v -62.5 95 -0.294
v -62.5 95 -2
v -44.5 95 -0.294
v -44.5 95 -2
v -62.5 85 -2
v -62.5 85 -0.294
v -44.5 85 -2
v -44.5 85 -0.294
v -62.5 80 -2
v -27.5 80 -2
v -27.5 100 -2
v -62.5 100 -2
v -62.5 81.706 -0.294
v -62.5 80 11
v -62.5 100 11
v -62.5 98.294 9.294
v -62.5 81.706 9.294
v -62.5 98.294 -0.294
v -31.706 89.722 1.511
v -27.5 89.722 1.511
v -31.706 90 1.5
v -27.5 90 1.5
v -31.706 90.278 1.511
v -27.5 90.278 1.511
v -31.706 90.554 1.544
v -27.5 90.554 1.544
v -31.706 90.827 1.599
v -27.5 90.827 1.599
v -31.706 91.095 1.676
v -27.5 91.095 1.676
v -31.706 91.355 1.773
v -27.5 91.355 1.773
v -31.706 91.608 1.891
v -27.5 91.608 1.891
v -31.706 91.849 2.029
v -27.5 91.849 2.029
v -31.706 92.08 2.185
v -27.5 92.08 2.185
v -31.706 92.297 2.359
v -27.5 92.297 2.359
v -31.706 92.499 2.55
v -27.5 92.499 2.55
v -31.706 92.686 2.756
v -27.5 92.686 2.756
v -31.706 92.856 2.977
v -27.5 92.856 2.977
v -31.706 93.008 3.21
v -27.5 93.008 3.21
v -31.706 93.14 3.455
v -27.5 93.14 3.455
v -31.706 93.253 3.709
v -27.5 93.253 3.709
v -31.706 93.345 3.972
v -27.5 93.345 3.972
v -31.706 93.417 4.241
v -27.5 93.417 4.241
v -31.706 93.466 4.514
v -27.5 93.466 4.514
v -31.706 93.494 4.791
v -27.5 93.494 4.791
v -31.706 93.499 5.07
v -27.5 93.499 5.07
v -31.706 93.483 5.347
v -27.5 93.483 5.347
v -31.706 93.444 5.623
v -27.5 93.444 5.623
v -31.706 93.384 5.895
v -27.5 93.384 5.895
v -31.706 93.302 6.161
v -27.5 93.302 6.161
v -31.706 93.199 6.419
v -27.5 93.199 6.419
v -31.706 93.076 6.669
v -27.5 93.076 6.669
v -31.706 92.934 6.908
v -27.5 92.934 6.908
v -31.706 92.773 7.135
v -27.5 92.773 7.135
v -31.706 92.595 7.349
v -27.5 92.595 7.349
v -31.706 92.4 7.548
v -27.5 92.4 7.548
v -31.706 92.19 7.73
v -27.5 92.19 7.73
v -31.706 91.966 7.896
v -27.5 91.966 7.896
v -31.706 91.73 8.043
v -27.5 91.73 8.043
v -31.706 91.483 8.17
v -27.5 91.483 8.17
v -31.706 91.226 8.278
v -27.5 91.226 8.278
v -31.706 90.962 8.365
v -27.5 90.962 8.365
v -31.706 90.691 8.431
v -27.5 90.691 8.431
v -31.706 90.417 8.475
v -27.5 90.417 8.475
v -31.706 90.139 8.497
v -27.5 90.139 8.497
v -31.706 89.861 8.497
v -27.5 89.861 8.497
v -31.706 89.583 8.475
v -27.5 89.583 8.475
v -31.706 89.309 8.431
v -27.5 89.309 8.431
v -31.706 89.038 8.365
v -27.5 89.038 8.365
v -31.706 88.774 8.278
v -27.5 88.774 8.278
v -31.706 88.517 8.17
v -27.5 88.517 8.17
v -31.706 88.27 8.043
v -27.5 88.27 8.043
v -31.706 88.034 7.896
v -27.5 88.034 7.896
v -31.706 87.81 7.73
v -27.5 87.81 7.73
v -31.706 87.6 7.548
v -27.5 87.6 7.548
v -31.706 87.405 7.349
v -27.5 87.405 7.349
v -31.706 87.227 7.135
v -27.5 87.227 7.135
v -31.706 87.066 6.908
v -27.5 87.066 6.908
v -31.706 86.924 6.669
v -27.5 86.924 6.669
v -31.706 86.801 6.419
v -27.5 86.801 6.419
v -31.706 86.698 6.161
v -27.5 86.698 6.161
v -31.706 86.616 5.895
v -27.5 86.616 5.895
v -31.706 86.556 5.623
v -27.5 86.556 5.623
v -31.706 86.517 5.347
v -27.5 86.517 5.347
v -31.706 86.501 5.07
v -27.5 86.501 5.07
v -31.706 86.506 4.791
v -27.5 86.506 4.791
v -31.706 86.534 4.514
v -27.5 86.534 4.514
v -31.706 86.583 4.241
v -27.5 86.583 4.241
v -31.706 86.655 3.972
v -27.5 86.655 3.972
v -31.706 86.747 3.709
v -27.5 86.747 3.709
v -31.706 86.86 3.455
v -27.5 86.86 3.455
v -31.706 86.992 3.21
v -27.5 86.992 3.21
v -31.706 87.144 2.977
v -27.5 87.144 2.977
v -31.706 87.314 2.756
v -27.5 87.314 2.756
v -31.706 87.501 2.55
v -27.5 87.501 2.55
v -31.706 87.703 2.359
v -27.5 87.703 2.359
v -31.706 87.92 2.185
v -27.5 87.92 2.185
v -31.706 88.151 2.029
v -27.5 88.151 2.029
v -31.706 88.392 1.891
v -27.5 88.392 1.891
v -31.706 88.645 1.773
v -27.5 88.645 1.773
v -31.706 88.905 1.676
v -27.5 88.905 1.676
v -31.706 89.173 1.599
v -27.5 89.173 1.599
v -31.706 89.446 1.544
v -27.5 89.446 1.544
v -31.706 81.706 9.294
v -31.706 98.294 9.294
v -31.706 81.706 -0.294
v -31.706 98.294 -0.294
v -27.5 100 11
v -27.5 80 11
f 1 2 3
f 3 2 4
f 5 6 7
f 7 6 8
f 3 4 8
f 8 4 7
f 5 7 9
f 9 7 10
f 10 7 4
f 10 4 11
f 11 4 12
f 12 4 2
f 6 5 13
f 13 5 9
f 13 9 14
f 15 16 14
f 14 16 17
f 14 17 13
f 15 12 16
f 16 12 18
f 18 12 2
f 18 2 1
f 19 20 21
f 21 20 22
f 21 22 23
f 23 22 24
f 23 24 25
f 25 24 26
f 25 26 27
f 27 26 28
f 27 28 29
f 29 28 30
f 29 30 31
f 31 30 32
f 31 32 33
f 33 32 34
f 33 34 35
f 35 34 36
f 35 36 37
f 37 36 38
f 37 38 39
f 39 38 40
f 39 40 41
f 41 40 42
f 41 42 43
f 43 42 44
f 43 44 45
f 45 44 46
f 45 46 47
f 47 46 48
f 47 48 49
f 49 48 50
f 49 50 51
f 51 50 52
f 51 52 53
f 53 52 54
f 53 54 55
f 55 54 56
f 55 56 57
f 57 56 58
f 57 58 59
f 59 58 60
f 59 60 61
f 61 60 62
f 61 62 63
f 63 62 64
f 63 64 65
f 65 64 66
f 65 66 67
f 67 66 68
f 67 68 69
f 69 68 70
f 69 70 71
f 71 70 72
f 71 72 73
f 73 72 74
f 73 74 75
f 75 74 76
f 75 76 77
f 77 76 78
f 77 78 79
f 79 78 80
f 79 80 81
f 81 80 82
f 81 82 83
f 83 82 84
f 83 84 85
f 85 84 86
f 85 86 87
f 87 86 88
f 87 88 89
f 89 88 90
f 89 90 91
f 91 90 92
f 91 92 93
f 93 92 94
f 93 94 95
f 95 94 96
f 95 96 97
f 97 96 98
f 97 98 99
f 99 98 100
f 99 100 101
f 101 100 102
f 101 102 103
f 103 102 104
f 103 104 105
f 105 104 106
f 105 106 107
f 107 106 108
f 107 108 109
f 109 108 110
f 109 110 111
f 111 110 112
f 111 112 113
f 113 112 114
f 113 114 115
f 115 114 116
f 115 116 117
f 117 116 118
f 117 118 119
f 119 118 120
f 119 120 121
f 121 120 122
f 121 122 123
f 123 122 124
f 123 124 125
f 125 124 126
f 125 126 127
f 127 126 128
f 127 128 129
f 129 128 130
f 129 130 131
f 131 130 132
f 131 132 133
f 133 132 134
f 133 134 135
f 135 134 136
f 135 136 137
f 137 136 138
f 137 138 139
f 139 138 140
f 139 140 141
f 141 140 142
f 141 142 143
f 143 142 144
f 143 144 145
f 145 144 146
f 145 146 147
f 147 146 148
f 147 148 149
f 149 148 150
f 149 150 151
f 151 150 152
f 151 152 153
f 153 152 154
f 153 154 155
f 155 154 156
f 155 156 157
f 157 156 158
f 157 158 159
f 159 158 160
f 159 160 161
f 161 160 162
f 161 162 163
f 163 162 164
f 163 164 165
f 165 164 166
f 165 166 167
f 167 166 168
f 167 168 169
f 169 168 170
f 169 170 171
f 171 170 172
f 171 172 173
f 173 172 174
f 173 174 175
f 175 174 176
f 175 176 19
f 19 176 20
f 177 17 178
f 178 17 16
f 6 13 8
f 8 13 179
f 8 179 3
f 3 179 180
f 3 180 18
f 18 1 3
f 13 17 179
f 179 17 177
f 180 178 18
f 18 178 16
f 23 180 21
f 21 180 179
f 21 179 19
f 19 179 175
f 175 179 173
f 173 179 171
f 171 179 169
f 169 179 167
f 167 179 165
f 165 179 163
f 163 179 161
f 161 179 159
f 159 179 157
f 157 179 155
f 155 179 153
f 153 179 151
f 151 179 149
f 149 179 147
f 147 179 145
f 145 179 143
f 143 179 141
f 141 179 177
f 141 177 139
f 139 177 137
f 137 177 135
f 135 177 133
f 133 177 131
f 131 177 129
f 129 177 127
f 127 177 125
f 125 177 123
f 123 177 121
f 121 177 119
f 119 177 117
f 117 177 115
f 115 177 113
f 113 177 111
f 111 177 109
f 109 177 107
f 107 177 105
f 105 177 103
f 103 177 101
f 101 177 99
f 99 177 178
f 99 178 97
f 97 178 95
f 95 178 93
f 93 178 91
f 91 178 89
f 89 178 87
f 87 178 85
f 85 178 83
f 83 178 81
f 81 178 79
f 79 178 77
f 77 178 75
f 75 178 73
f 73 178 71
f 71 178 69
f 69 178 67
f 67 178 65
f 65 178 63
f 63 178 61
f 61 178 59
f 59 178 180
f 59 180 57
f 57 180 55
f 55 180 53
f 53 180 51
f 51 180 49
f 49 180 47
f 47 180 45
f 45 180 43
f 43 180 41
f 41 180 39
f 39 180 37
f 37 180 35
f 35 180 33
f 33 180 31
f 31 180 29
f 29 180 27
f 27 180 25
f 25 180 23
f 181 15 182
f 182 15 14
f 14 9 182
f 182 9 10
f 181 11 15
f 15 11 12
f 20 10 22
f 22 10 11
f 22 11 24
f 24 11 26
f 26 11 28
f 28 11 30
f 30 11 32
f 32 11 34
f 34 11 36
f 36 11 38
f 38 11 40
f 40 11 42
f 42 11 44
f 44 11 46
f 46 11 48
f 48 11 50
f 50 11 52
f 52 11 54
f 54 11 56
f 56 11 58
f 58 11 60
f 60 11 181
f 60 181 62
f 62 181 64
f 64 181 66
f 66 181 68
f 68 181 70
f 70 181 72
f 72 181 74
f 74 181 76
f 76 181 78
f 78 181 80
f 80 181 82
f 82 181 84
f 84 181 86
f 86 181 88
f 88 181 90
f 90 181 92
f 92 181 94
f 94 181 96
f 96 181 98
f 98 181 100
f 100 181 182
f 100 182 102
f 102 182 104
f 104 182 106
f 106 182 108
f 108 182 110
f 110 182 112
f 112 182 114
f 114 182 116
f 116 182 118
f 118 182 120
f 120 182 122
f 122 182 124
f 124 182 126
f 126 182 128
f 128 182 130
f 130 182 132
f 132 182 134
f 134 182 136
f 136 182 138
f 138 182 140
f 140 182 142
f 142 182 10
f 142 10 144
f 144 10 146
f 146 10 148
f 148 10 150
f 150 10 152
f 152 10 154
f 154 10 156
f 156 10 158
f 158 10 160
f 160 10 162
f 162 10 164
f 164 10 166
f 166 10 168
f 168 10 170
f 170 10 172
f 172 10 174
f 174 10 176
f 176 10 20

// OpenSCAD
module object1(scale) {polyhedron(
 points=[[-62.5,95,-0.29408740997314453],[-62.5,95,-2],[-44.5,95,-0.29408740997314453],[-44.5,95,-0.29408740997314453],[-62.5,95,-2],[-44.5,95,-2],[-62.5,85,-2],[-62.5,85,-0.29408740997314453],[-44.5,85,-2],[-44.5,85,-2],[-62.5,85,-0.29408740997314453],[-44.5,85,-0.29408740997314453],[-44.5,95,-0.29408740997314453],[-44.5,95,-2],[-44.5,85,-0.29408740997314453],[-44.5,85,-0.29408740997314453],[-44.5,95,-2],[-44.5,85,-2],[-62.5,85,-2],[-44.5,85,-2],[-62.5,80,-2],[-62.5,80,-2],[-44.5,85,-2],[-27.5,80,-2],[-27.5,80,-2],[-44.5,85,-2],[-44.5,95,-2],[-27.5,80,-2],[-44.5,95,-2],[-27.5,100,-2],[-27.5,100,-2],[-44.5,95,-2],[-62.5,100,-2],[-62.5,100,-2],[-44.5,95,-2],[-62.5,95,-2],[-62.5,85,-0.29408740997314453],[-62.5,85,-2],[-62.5,81.7059097290039,-0.29408740997314453],[-62.5,81.7059097290039,-0.29408740997314453],[-62.5,85,-2],[-62.5,80,-2],[-62.5,81.7059097290039,-0.29408740997314453],[-62.5,80,-2],[-62.5,80,11],[-62.5,100,11],[-62.5,98.2940902709961,9.294087409973145],[-62.5,80,11],[-62.5,80,11],[-62.5,98.2940902709961,9.294087409973145],[-62.5,81.7059097290039,9.294087409973145],[-62.5,80,11],[-62.5,81.7059097290039,9.294087409973145],[-62.5,81.7059097290039,-0.29408740997314453],[-62.5,100,11],[-62.5,100,-2],[-62.5,98.2940902709961,9.294087409973145],[-62.5,98.2940902709961,9.294087409973145],[-62.5,100,-2],[-62.5,98.2940902709961,-0.29408740997314453],[-62.5,98.2940902709961,-0.29408740997314453],[-62.5,100,-2],[-62.5,95,-2],[-62.5,98.2940902709961,-0.29408740997314453],[-62.5,95,-2],[-62.5,95,-0.29408740997314453],[-31.705913543701172,89.721923828125,1.511064052581787],[-27.5,89.721923828125,1.511064052581787],[-31.705913543701172,90,1.5],[-31.705913543701172,90,1.5],[-27.5,89.721923828125,1.511064052581787],[-27.5,90,1.5],[-31.705913543701172,90,1.5],[-27.5,90,1.5],[-31.705913543701172,90.278076171875,1.511064052581787],[-31.705913543701172,90.278076171875,1.511064052581787],[-27.5,90,1.5],[-27.5,90.278076171875,1.511064052581787],[-31.705913543701172,90.278076171875,1.511064052581787],[-27.5,90.278076171875,1.511064052581787],[-31.705913543701172,90.55438995361328,1.5441863536834717],[-31.705913543701172,90.55438995361328,1.5441863536834717],[-27.5,90.278076171875,1.511064052581787],[-27.5,90.55438995361328,1.5441863536834717],[-31.705913543701172,90.55438995361328,1.5441863536834717],[-27.5,90.55438995361328,1.5441863536834717],[-31.705913543701172,90.82720184326172,1.5991573333740234],[-31.705913543701172,90.82720184326172,1.5991573333740234],[-27.5,90.55438995361328,1.5441863536834717],[-27.5,90.82720184326172,1.5991573333740234],[-31.705913543701172,90.82720184326172,1.5991573333740234],[-27.5,90.82720184326172,1.5991573333740234],[-31.705913543701172,91.09478759765625,1.6756294965744019],[-31.705913543701172,91.09478759765625,1.6756294965744019],[-27.5,90.82720184326172,1.5991573333740234],[-27.5,91.09478759765625,1.6756294965744019],[-31.705913543701172,91.09478759765625,1.6756294965744019],[-27.5,91.09478759765625,1.6756294965744019],[-31.705913543701172,91.3554458618164,1.7731194496154785],[-31.705913543701172,91.3554458618164,1.7731194496154785],[-27.5,91.09478759765625,1.6756294965744019],[-27.5,91.3554458618164,1.7731194496154785],[-31.705913543701172,91.3554458618164,1.7731194496154785],[-27.5,91.3554458618164,1.7731194496154785],[-31.705913543701172,91.6075439453125,1.8910108804702759],[-31.705913543701172,91.6075439453125,1.8910108804702759],[-27.5,91.3554458618164,1.7731194496154785],[-27.5,91.6075439453125,1.8910108804702759],[-31.705913543701172,91.6075439453125,1.8910108804702759],[-27.5,91.6075439453125,1.8910108804702759],[-31.705913543701172,91.84947204589844,2.0285582542419434],[-31.705913543701172,91.84947204589844,2.0285582542419434],[-27.5,91.6075439453125,1.8910108804702759],[-27.5,91.84947204589844,2.0285582542419434],[-31.705913543701172,91.84947204589844,2.0285582542419434],[-27.5,91.84947204589844,2.0285582542419434],[-31.705913543701172,92.07970428466797,2.184891939163208],[-31.705913543701172,92.07970428466797,2.184891939163208],[-27.5,91.84947204589844,2.0285582542419434],[-27.5,92.07970428466797,2.184891939163208],[-31.705913543701172,92.07970428466797,2.184891939163208],[-27.5,92.07970428466797,2.184891939163208],[-31.705913543701172,92.29679107666016,2.3590238094329834],[-31.705913543701172,92.29679107666016,2.3590238094329834],[-27.5,92.07970428466797,2.184891939163208],[-27.5,92.29679107666016,2.3590238094329834],[-31.705913543701172,92.29679107666016,2.3590238094329834],[-27.5,92.29679107666016,2.3590238094329834],[-31.705913543701172,92.49935913085938,2.5498528480529785],[-31.705913543701172,92.49935913085938,2.5498528480529785],[-27.5,92.29679107666016,2.3590238094329834],[-27.5,92.49935913085938,2.5498528480529785],[-31.705913543701172,92.49935913085938,2.5498528480529785],[-27.5,92.49935913085938,2.5498528480529785],[-31.705913543701172,92.68611907958984,2.7561721801757812],[-31.705913543701172,92.68611907958984,2.7561721801757812],[-27.5,92.49935913085938,2.5498528480529785],[-27.5,92.68611907958984,2.7561721801757812],[-31.705913543701172,92.68611907958984,2.7561721801757812],[-27.5,92.68611907958984,2.7561721801757812],[-31.705913543701172,92.85590362548828,2.976677894592285],[-31.705913543701172,92.85590362548828,2.976677894592285],[-27.5,92.68611907958984,2.7561721801757812],[-27.5,92.85590362548828,2.976677894592285],[-31.705913543701172,92.85590362548828,2.976677894592285],[-27.5,92.85590362548828,2.976677894592285],[-31.705913543701172,93.00762939453125,3.2099757194519043],[-31.705913543701172,93.00762939453125,3.2099757194519043],[-27.5,92.85590362548828,2.976677894592285],[-27.5,93.00762939453125,3.2099757194519043],[-31.705913543701172,93.00762939453125,3.2099757194519043],[-27.5,93.00762939453125,3.2099757194519043],[-31.705913543701172,93.14033508300781,3.4545907974243164],[-31.705913543701172,93.14033508300781,3.4545907974243164],[-27.5,93.00762939453125,3.2099757194519043],[-27.5,93.14033508300781,3.4545907974243164],[-31.705913543701172,93.14033508300781,3.4545907974243164],[-27.5,93.14033508300781,3.4545907974243164],[-31.705913543701172,93.25318908691406,3.7089762687683105],[-31.705913543701172,93.25318908691406,3.7089762687683105],[-27.5,93.14033508300781,3.4545907974243164],[-27.5,93.25318908691406,3.7089762687683105],[-31.705913543701172,93.25318908691406,3.7089762687683105],[-27.5,93.25318908691406,3.7089762687683105],[-31.705913543701172,93.3454818725586,3.9715240001678467],[-31.705913543701172,93.3454818725586,3.9715240001678467],[-27.5,93.25318908691406,3.7089762687683105],[-27.5,93.3454818725586,3.9715240001678467],[-31.705913543701172,93.3454818725586,3.9715240001678467],[-27.5,93.3454818725586,3.9715240001678467],[-31.705913543701172,93.41661834716797,4.240574359893799],[-31.705913543701172,93.41661834716797,4.240574359893799],[-27.5,93.3454818725586,3.9715240001678467],[-27.5,93.41661834716797,4.240574359893799],[-31.705913543701172,93.41661834716797,4.240574359893799],[-27.5,93.41661834716797,4.240574359893799],[-31.705913543701172,93.46615600585938,4.514425754547119],[-31.705913543701172,93.46615600585938,4.514425754547119],[-27.5,93.41661834716797,4.240574359893799],[-27.5,93.46615600585938,4.514425754547119],[-31.705913543701172,93.46615600585938,4.514425754547119],[-27.5,93.46615600585938,4.514425754547119],[-31.705913543701172,93.4937744140625,4.791347026824951],[-31.705913543701172,93.4937744140625,4.791347026824951],[-27.5,93.46615600585938,4.514425754547119],[-27.5,93.4937744140625,4.791347026824951],[-31.705913543701172,93.4937744140625,4.791347026824951],[-27.5,93.4937744140625,4.791347026824951],[-31.705913543701172,93.49930572509766,5.069587707519531],[-31.705913543701172,93.49930572509766,5.069587707519531],[-27.5,93.4937744140625,4.791347026824951],[-27.5,93.49930572509766,5.069587707519531],[-31.705913543701172,93.49930572509766,5.069587707519531],[-27.5,93.49930572509766,5.069587707519531],[-31.705913543701172,93.48271942138672,5.34738826751709],[-31.705913543701172,93.48271942138672,5.34738826751709],[-27.5,93.49930572509766,5.069587707519531],[-27.5,93.48271942138672,5.34738826751709],[-31.705913543701172,93.48271942138672,5.34738826751709],[-27.5,93.48271942138672,5.34738826751709],[-31.705913543701172,93.44410705566406,5.622992515563965],[-31.705913543701172,93.44410705566406,5.622992515563965],[-27.5,93.48271942138672,5.34738826751709],[-27.5,93.44410705566406,5.622992515563965],[-31.705913543701172,93.44410705566406,5.622992515563965],[-27.5,93.44410705566406,5.622992515563965],[-31.705913543701172,93.38372039794922,5.894658088684082],[-31.705913543701172,93.38372039794922,5.894658088684082],[-27.5,93.44410705566406,5.622992515563965],[-27.5,93.38372039794922,5.894658088684082],[-31.705913543701172,93.38372039794922,5.894658088684082],[-27.5,93.38372039794922,5.894658088684082],[-31.705913543701172,93.30194854736328,6.160667419433594],[-31.705913543701172,93.30194854736328,6.160667419433594],[-27.5,93.38372039794922,5.894658088684082],[-27.5,93.30194854736328,6.160667419433594],[-31.705913543701172,93.30194854736328,6.160667419433594],[-27.5,93.30194854736328,6.160667419433594],[-31.705913543701172,93.19929504394531,6.419338703155518],[-31.705913543701172,93.19929504394531,6.419338703155518],[-27.5,93.30194854736328,6.160667419433594],[-27.5,93.19929504394531,6.419338703155518],[-31.705913543701172,93.19929504394531,6.419338703155518],[-27.5,93.19929504394531,6.419338703155518],[-31.705913543701172,93.076416015625,6.669036388397217],[-31.705913543701172,93.076416015625,6.669036388397217],[-27.5,93.19929504394531,6.419338703155518],[-27.5,93.076416015625,6.669036388397217],[-31.705913543701172,93.076416015625,6.669036388397217],[-27.5,93.076416015625,6.669036388397217],[-31.705913543701172,92.93408203125,6.908181667327881],[-31.705913543701172,92.93408203125,6.908181667327881],[-27.5,93.076416015625,6.669036388397217],[-27.5,92.93408203125,6.908181667327881],[-31.705913543701172,92.93408203125,6.908181667327881],[-27.5,92.93408203125,6.908181667327881],[-31.705913543701172,92.77320098876953,7.135262966156006],[-31.705913543701172,92.77320098876953,7.135262966156006],[-27.5,92.93408203125,6.908181667327881],[-27.5,92.77320098876953,7.135262966156006],[-31.705913543701172,92.77320098876953,7.135262966156006],[-27.5,92.77320098876953,7.135262966156006],[-31.705913543701172,92.59478759765625,7.348844528198242],[-31.705913543701172,92.59478759765625,7.348844528198242],[-27.5,92.77320098876953,7.135262966156006],[-27.5,92.59478759765625,7.348844528198242],[-31.705913543701172,92.59478759765625,7.348844528198242],[-27.5,92.59478759765625,7.348844528198242],[-31.705913543701172,92.39997100830078,7.547575950622559],[-31.705913543701172,92.39997100830078,7.547575950622559],[-27.5,92.59478759765625,7.348844528198242],[-27.5,92.39997100830078,7.547575950622559],[-31.705913543701172,92.39997100830078,7.547575950622559],[-27.5,92.39997100830078,7.547575950622559],[-31.705913543701172,92.18997955322266,7.73020076751709],[-31.705913543701172,92.18997955322266,7.73020076751709],[-27.5,92.39997100830078,7.547575950622559],[-27.5,92.18997955322266,7.73020076751709],[-31.705913543701172,92.18997955322266,7.73020076751709],[-27.5,92.18997955322266,7.73020076751709],[-31.705913543701172,91.96614074707031,7.895564079284668],[-31.705913543701172,91.96614074707031,7.895564079284668],[-27.5,92.18997955322266,7.73020076751709],[-27.5,91.96614074707031,7.895564079284668],[-31.705913543701172,91.96614074707031,7.895564079284668],[-27.5,91.96614074707031,7.895564079284668],[-31.705913543701172,91.72987365722656,8.042620658874512],[-31.705913543701172,91.72987365722656,8.042620658874512],[-27.5,91.96614074707031,7.895564079284668],[-27.5,91.72987365722656,8.042620658874512],[-31.705913543701172,91.72987365722656,8.042620658874512],[-27.5,91.72987365722656,8.042620658874512],[-31.705913543701172,91.482666015625,8.170441627502441],[-31.705913543701172,91.482666015625,8.170441627502441],[-27.5,91.72987365722656,8.042620658874512],[-27.5,91.482666015625,8.170441627502441],[-31.705913543701172,91.482666015625,8.170441627502441],[-27.5,91.482666015625,8.170441627502441],[-31.705913543701172,91.22608947753906,8.278217315673828],[-31.705913543701172,91.22608947753906,8.278217315673828],[-27.5,91.482666015625,8.170441627502441],[-27.5,91.22608947753906,8.278217315673828],[-31.705913543701172,91.22608947753906,8.278217315673828],[-27.5,91.22608947753906,8.278217315673828],[-31.705913543701172,90.96175384521484,8.365266799926758],[-31.705913543701172,90.96175384521484,8.365266799926758],[-27.5,91.22608947753906,8.278217315673828],[-27.5,90.96175384521484,8.365266799926758],[-31.705913543701172,90.96175384521484,8.365266799926758],[-27.5,90.96175384521484,8.365266799926758],[-31.705913543701172,90.69134521484375,8.43104076385498],[-31.705913543701172,90.69134521484375,8.43104076385498],[-27.5,90.96175384521484,8.365266799926758],[-27.5,90.69134521484375,8.43104076385498],[-31.705913543701172,90.69134521484375,8.43104076385498],[-27.5,90.69134521484375,8.43104076385498],[-31.705913543701172,90.41656494140625,8.475122451782227],[-31.705913543701172,90.41656494140625,8.475122451782227],[-27.5,90.69134521484375,8.43104076385498],[-27.5,90.41656494140625,8.475122451782227],[-31.705913543701172,90.41656494140625,8.475122451782227],[-27.5,90.41656494140625,8.475122451782227],[-31.705913543701172,90.13914489746094,8.497232437133789],[-31.705913543701172,90.13914489746094,8.497232437133789],[-27.5,90.41656494140625,8.475122451782227],[-27.5,90.13914489746094,8.497232437133789],[-31.705913543701172,90.13914489746094,8.497232437133789],[-27.5,90.13914489746094,8.497232437133789],[-31.705913543701172,89.86085510253906,8.497232437133789],[-31.705913543701172,89.86085510253906,8.497232437133789],[-27.5,90.13914489746094,8.497232437133789],[-27.5,89.86085510253906,8.497232437133789],[-31.705913543701172,89.86085510253906,8.497232437133789],[-27.5,89.86085510253906,8.497232437133789],[-31.705913543701172,89.58343505859375,8.475122451782227],[-31.705913543701172,89.58343505859375,8.475122451782227],[-27.5,89.86085510253906,8.497232437133789],[-27.5,89.58343505859375,8.475122451782227],[-31.705913543701172,89.58343505859375,8.475122451782227],[-27.5,89.58343505859375,8.475122451782227],[-31.705913543701172,89.30865478515625,8.43104076385498],[-31.705913543701172,89.30865478515625,8.43104076385498],[-27.5,89.58343505859375,8.475122451782227],[-27.5,89.30865478515625,8.43104076385498],[-31.705913543701172,89.30865478515625,8.43104076385498],[-27.5,89.30865478515625,8.43104076385498],[-31.705913543701172,89.03824615478516,8.365266799926758],[-31.705913543701172,89.03824615478516,8.365266799926758],[-27.5,89.30865478515625,8.43104076385498],[-27.5,89.03824615478516,8.365266799926758],[-31.705913543701172,89.03824615478516,8.365266799926758],[-27.5,89.03824615478516,8.365266799926758],[-31.705913543701172,88.77391052246094,8.278217315673828],[-31.705913543701172,88.77391052246094,8.278217315673828],[-27.5,89.03824615478516,8.365266799926758],[-27.5,88.77391052246094,8.278217315673828],[-31.705913543701172,88.77391052246094,8.278217315673828],[-27.5,88.77391052246094,8.278217315673828],[-31.705913543701172,88.517333984375,8.170441627502441],[-31.705913543701172,88.517333984375,8.170441627502441],[-27.5,88.77391052246094,8.278217315673828],[-27.5,88.517333984375,8.170441627502441],[-31.705913543701172,88.517333984375,8.170441627502441],[-27.5,88.517333984375,8.170441627502441],[-31.705913543701172,88.27012634277344,8.042620658874512],[-31.705913543701172,88.27012634277344,8.042620658874512],[-27.5,88.517333984375,8.170441627502441],[-27.5,88.27012634277344,8.042620658874512],[-31.705913543701172,88.27012634277344,8.042620658874512],[-27.5,88.27012634277344,8.042620658874512],[-31.705913543701172,88.03385925292969,7.895564079284668],[-31.705913543701172,88.03385925292969,7.895564079284668],[-27.5,88.27012634277344,8.042620658874512],[-27.5,88.03385925292969,7.895564079284668],[-31.705913543701172,88.03385925292969,7.895564079284668],[-27.5,88.03385925292969,7.895564079284668],[-31.705913543701172,87.81002044677734,7.73020076751709],[-31.705913543701172,87.81002044677734,7.73020076751709],[-27.5,88.03385925292969,7.895564079284668],[-27.5,87.81002044677734,7.73020076751709],[-31.705913543701172,87.81002044677734,7.73020076751709],[-27.5,87.81002044677734,7.73020076751709],[-31.705913543701172,87.60002899169922,7.547575950622559],[-31.705913543701172,87.60002899169922,7.547575950622559],[-27.5,87.81002044677734,7.73020076751709],[-27.5,87.60002899169922,7.547575950622559],[-31.705913543701172,87.60002899169922,7.547575950622559],[-27.5,87.60002899169922,7.547575950622559],[-31.705913543701172,87.40521240234375,7.348844528198242],[-31.705913543701172,87.40521240234375,7.348844528198242],[-27.5,87.60002899169922,7.547575950622559],[-27.5,87.40521240234375,7.348844528198242],[-31.705913543701172,87.40521240234375,7.348844528198242],[-27.5,87.40521240234375,7.348844528198242],[-31.705913543701172,87.22679901123047,7.135262966156006],[-31.705913543701172,87.22679901123047,7.135262966156006],[-27.5,87.40521240234375,7.348844528198242],[-27.5,87.22679901123047,7.135262966156006],[-31.705913543701172,87.22679901123047,7.135262966156006],[-27.5,87.22679901123047,7.135262966156006],[-31.705913543701172,87.06591796875,6.908181667327881],[-31.705913543701172,87.06591796875,6.908181667327881],[-27.5,87.22679901123047,7.135262966156006],[-27.5,87.06591796875,6.908181667327881],[-31.705913543701172,87.06591796875,6.908181667327881],[-27.5,87.06591796875,6.908181667327881],[-31.705913543701172,86.923583984375,6.669036388397217],[-31.705913543701172,86.923583984375,6.669036388397217],[-27.5,87.06591796875,6.908181667327881],[-27.5,86.923583984375,6.669036388397217],[-31.705913543701172,86.923583984375,6.669036388397217],[-27.5,86.923583984375,6.669036388397217],[-31.705913543701172,86.80070495605469,6.419338703155518],[-31.705913543701172,86.80070495605469,6.419338703155518],[-27.5,86.923583984375,6.669036388397217],[-27.5,86.80070495605469,6.419338703155518],[-31.705913543701172,86.80070495605469,6.419338703155518],[-27.5,86.80070495605469,6.419338703155518],[-31.705913543701172,86.69805145263672,6.160667419433594],[-31.705913543701172,86.69805145263672,6.160667419433594],[-27.5,86.80070495605469,6.419338703155518],[-27.5,86.69805145263672,6.160667419433594],[-31.705913543701172,86.69805145263672,6.160667419433594],[-27.5,86.69805145263672,6.160667419433594],[-31.705913543701172,86.61627960205078,5.894658088684082],[-31.705913543701172,86.61627960205078,5.894658088684082],[-27.5,86.69805145263672,6.160667419433594],[-27.5,86.61627960205078,5.894658088684082],[-31.705913543701172,86.61627960205078,5.894658088684082],[-27.5,86.61627960205078,5.894658088684082],[-31.705913543701172,86.55589294433594,5.622992515563965],[-31.705913543701172,86.55589294433594,5.622992515563965],[-27.5,86.61627960205078,5.894658088684082],[-27.5,86.55589294433594,5.622992515563965],[-31.705913543701172,86.55589294433594,5.622992515563965],[-27.5,86.55589294433594,5.622992515563965],[-31.705913543701172,86.51728057861328,5.34738826751709],[-31.705913543701172,86.51728057861328,5.34738826751709],[-27.5,86.55589294433594,5.622992515563965],[-27.5,86.51728057861328,5.34738826751709],[-31.705913543701172,86.51728057861328,5.34738826751709],[-27.5,86.51728057861328,5.34738826751709],[-31.705913543701172,86.50069427490234,5.069587707519531],[-31.705913543701172,86.50069427490234,5.069587707519531],[-27.5,86.51728057861328,5.34738826751709],[-27.5,86.50069427490234,5.069587707519531],[-31.705913543701172,86.50069427490234,5.069587707519531],[-27.5,86.50069427490234,5.069587707519531],[-31.705913543701172,86.5062255859375,4.791347026824951],[-31.705913543701172,86.5062255859375,4.791347026824951],[-27.5,86.50069427490234,5.069587707519531],[-27.5,86.5062255859375,4.791347026824951],[-31.705913543701172,86.5062255859375,4.791347026824951],[-27.5,86.5062255859375,4.791347026824951],[-31.705913543701172,86.53384399414062,4.514425754547119],[-31.705913543701172,86.53384399414062,4.514425754547119],[-27.5,86.5062255859375,4.791347026824951],[-27.5,86.53384399414062,4.514425754547119],[-31.705913543701172,86.53384399414062,4.514425754547119],[-27.5,86.53384399414062,4.514425754547119],[-31.705913543701172,86.58338165283203,4.240574359893799],[-31.705913543701172,86.58338165283203,4.240574359893799],[-27.5,86.53384399414062,4.514425754547119],[-27.5,86.58338165283203,4.240574359893799],[-31.705913543701172,86.58338165283203,4.240574359893799],[-27.5,86.58338165283203,4.240574359893799],[-31.705913543701172,86.6545181274414,3.9715240001678467],[-31.705913543701172,86.6545181274414,3.9715240001678467],[-27.5,86.58338165283203,4.240574359893799],[-27.5,86.6545181274414,3.9715240001678467],[-31.705913543701172,86.6545181274414,3.9715240001678467],[-27.5,86.6545181274414,3.9715240001678467],[-31.705913543701172,86.74681091308594,3.7089762687683105],[-31.705913543701172,86.74681091308594,3.7089762687683105],[-27.5,86.6545181274414,3.9715240001678467],[-27.5,86.74681091308594,3.7089762687683105],[-31.705913543701172,86.74681091308594,3.7089762687683105],[-27.5,86.74681091308594,3.7089762687683105],[-31.705913543701172,86.85966491699219,3.4545907974243164],[-31.705913543701172,86.85966491699219,3.4545907974243164],[-27.5,86.74681091308594,3.7089762687683105],[-27.5,86.85966491699219,3.4545907974243164],[-31.705913543701172,86.85966491699219,3.4545907974243164],[-27.5,86.85966491699219,3.4545907974243164],[-31.705913543701172,86.99237060546875,3.2099757194519043],[-31.705913543701172,86.99237060546875,3.2099757194519043],[-27.5,86.85966491699219,3.4545907974243164],[-27.5,86.99237060546875,3.2099757194519043],[-31.705913543701172,86.99237060546875,3.2099757194519043],[-27.5,86.99237060546875,3.2099757194519043],[-31.705913543701172,87.14409637451172,2.976677894592285],[-31.705913543701172,87.14409637451172,2.976677894592285],[-27.5,86.99237060546875,3.2099757194519043],[-27.5,87.14409637451172,2.976677894592285],[-31.705913543701172,87.14409637451172,2.976677894592285],[-27.5,87.14409637451172,2.976677894592285],[-31.705913543701172,87.31388092041016,2.7561721801757812],[-31.705913543701172,87.31388092041016,2.7561721801757812],[-27.5,87.14409637451172,2.976677894592285],[-27.5,87.31388092041016,2.7561721801757812],[-31.705913543701172,87.31388092041016,2.7561721801757812],[-27.5,87.31388092041016,2.7561721801757812],[-31.705913543701172,87.50064086914062,2.5498528480529785],[-31.705913543701172,87.50064086914062,2.5498528480529785],[-27.5,87.31388092041016,2.7561721801757812],[-27.5,87.50064086914062,2.5498528480529785],[-31.705913543701172,87.50064086914062,2.5498528480529785],[-27.5,87.50064086914062,2.5498528480529785],[-31.705913543701172,87.70320892333984,2.3590238094329834],[-31.705913543701172,87.70320892333984,2.3590238094329834],[-27.5,87.50064086914062,2.5498528480529785],[-27.5,87.70320892333984,2.3590238094329834],[-31.705913543701172,87.70320892333984,2.3590238094329834],[-27.5,87.70320892333984,2.3590238094329834],[-31.705913543701172,87.92029571533203,2.184891939163208],[-31.705913543701172,87.92029571533203,2.184891939163208],[-27.5,87.70320892333984,2.3590238094329834],[-27.5,87.92029571533203,2.184891939163208],[-31.705913543701172,87.92029571533203,2.184891939163208],[-27.5,87.92029571533203,2.184891939163208],[-31.705913543701172,88.15052795410156,2.0285582542419434],[-31.705913543701172,88.15052795410156,2.0285582542419434],[-27.5,87.92029571533203,2.184891939163208],[-27.5,88.15052795410156,2.0285582542419434],[-31.705913543701172,88.15052795410156,2.0285582542419434],[-27.5,88.15052795410156,2.0285582542419434],[-31.705913543701172,88.3924560546875,1.8910108804702759],[-31.705913543701172,88.3924560546875,1.8910108804702759],[-27.5,88.15052795410156,2.0285582542419434],[-27.5,88.3924560546875,1.8910108804702759],[-31.705913543701172,88.3924560546875,1.8910108804702759],[-27.5,88.3924560546875,1.8910108804702759],[-31.705913543701172,88.6445541381836,1.7731194496154785],[-31.705913543701172,88.6445541381836,1.7731194496154785],[-27.5,88.3924560546875,1.8910108804702759],[-27.5,88.6445541381836,1.7731194496154785],[-31.705913543701172,88.6445541381836,1.7731194496154785],[-27.5,88.6445541381836,1.7731194496154785],[-31.705913543701172,88.90521240234375,1.6756294965744019],[-31.705913543701172,88.90521240234375,1.6756294965744019],[-27.5,88.6445541381836,1.7731194496154785],[-27.5,88.90521240234375,1.6756294965744019],[-31.705913543701172,88.90521240234375,1.6756294965744019],[-27.5,88.90521240234375,1.6756294965744019],[-31.705913543701172,89.17279815673828,1.5991573333740234],[-31.705913543701172,89.17279815673828,1.5991573333740234],[-27.5,88.90521240234375,1.6756294965744019],[-27.5,89.17279815673828,1.5991573333740234],[-31.705913543701172,89.17279815673828,1.5991573333740234],[-27.5,89.17279815673828,1.5991573333740234],[-31.705913543701172,89.44561004638672,1.5441863536834717],[-31.705913543701172,89.44561004638672,1.5441863536834717],[-27.5,89.17279815673828,1.5991573333740234],[-27.5,89.44561004638672,1.5441863536834717],[-31.705913543701172,89.44561004638672,1.5441863536834717],[-27.5,89.44561004638672,1.5441863536834717],[-31.705913543701172,89.721923828125,1.511064052581787],[-31.705913543701172,89.721923828125,1.511064052581787],[-27.5,89.44561004638672,1.5441863536834717],[-27.5,89.721923828125,1.511064052581787],[-31.705913543701172,81.7059097290039,9.294087409973145],[-62.5,81.7059097290039,9.294087409973145],[-31.705913543701172,98.2940902709961,9.294087409973145],[-31.705913543701172,98.2940902709961,9.294087409973145],[-62.5,81.7059097290039,9.294087409973145],[-62.5,98.2940902709961,9.294087409973145],[-62.5,85,-0.29408740997314453],[-62.5,81.7059097290039,-0.29408740997314453],[-44.5,85,-0.29408740997314453],[-44.5,85,-0.29408740997314453],[-62.5,81.7059097290039,-0.29408740997314453],[-31.705913543701172,81.7059097290039,-0.29408740997314453],[-44.5,85,-0.29408740997314453],[-31.705913543701172,81.7059097290039,-0.29408740997314453],[-44.5,95,-0.29408740997314453],[-44.5,95,-0.29408740997314453],[-31.705913543701172,81.7059097290039,-0.29408740997314453],[-31.705913543701172,98.2940902709961,-0.29408740997314453],[-44.5,95,-0.29408740997314453],[-31.705913543701172,98.2940902709961,-0.29408740997314453],[-62.5,98.2940902709961,-0.29408740997314453],[-62.5,98.2940902709961,-0.29408740997314453],[-62.5,95,-0.29408740997314453],[-44.5,95,-0.29408740997314453],[-62.5,81.7059097290039,-0.29408740997314453],[-62.5,81.7059097290039,9.294087409973145],[-31.705913543701172,81.7059097290039,-0.29408740997314453],[-31.705913543701172,81.7059097290039,-0.29408740997314453],[-62.5,81.7059097290039,9.294087409973145],[-31.705913543701172,81.7059097290039,9.294087409973145],[-31.705913543701172,98.2940902709961,-0.29408740997314453],[-31.705913543701172,98.2940902709961,9.294087409973145],[-62.5,98.2940902709961,-0.29408740997314453],[-62.5,98.2940902709961,-0.29408740997314453],[-31.705913543701172,98.2940902709961,9.294087409973145],[-62.5,98.2940902709961,9.294087409973145],[-31.705913543701172,90.278076171875,1.511064052581787],[-31.705913543701172,98.2940902709961,-0.29408740997314453],[-31.705913543701172,90,1.5],[-31.705913543701172,90,1.5],[-31.705913543701172,98.2940902709961,-0.29408740997314453],[-31.705913543701172,81.7059097290039,-0.29408740997314453],[-31.705913543701172,90,1.5],[-31.705913543701172,81.7059097290039,-0.29408740997314453],[-31.705913543701172,89.721923828125,1.511064052581787],[-31.705913543701172,89.721923828125,1.511064052581787],[-31.705913543701172,81.7059097290039,-0.29408740997314453],[-31.705913543701172,89.44561004638672,1.5441863536834717],[-31.705913543701172,89.44561004638672,1.5441863536834717],[-31.705913543701172,81.7059097290039,-0.29408740997314453],[-31.705913543701172,89.17279815673828,1.5991573333740234],[-31.705913543701172,89.17279815673828,1.5991573333740234],[-31.705913543701172,81.7059097290039,-0.29408740997314453],[-31.705913543701172,88.90521240234375,1.6756294965744019],[-31.705913543701172,88.90521240234375,1.6756294965744019],[-31.705913543701172,81.7059097290039,-0.29408740997314453],[-31.705913543701172,88.6445541381836,1.7731194496154785],[-31.705913543701172,88.6445541381836,1.7731194496154785],[-31.705913543701172,81.7059097290039,-0.29408740997314453],[-31.705913543701172,88.3924560546875,1.8910108804702759],[-31.705913543701172,88.3924560546875,1.8910108804702759],[-31.705913543701172,81.7059097290039,-0.29408740997314453],[-31.705913543701172,88.15052795410156,2.0285582542419434],[-31.705913543701172,88.15052795410156,2.0285582542419434],[-31.705913543701172,81.7059097290039,-0.29408740997314453],[-31.705913543701172,87.92029571533203,2.184891939163208],[-31.705913543701172,87.92029571533203,2.184891939163208],[-31.705913543701172,81.7059097290039,-0.29408740997314453],[-31.705913543701172,87.70320892333984,2.3590238094329834],[-31.705913543701172,87.70320892333984,2.3590238094329834],[-31.705913543701172,81.7059097290039,-0.29408740997314453],[-31.705913543701172,87.50064086914062,2.5498528480529785],[-31.705913543701172,87.50064086914062,2.5498528480529785],[-31.705913543701172,81.7059097290039,-0.29408740997314453],[-31.705913543701172,87.31388092041016,2.7561721801757812],[-31.705913543701172,87.31388092041016,2.7561721801757812],[-31.705913543701172,81.7059097290039,-0.29408740997314453],[-31.705913543701172,87.14409637451172,2.976677894592285],[-31.705913543701172,87.14409637451172,2.976677894592285],[-31.705913543701172,81.7059097290039,-0.29408740997314453],[-31.705913543701172,86.99237060546875,3.2099757194519043],[-31.705913543701172,86.99237060546875,3.2099757194519043],[-31.705913543701172,81.7059097290039,-0.29408740997314453],[-31.705913543701172,86.85966491699219,3.4545907974243164],[-31.705913543701172,86.85966491699219,3.4545907974243164],[-31.705913543701172,81.7059097290039,-0.29408740997314453],[-31.705913543701172,86.74681091308594,3.7089762687683105],[-31.705913543701172,86.74681091308594,3.7089762687683105],[-31.705913543701172,81.7059097290039,-0.29408740997314453],[-31.705913543701172,86.6545181274414,3.9715240001678467],[-31.705913543701172,86.6545181274414,3.9715240001678467],[-31.705913543701172,81.7059097290039,-0.29408740997314453],[-31.705913543701172,86.58338165283203,4.240574359893799],[-31.705913543701172,86.58338165283203,4.240574359893799],[-31.705913543701172,81.7059097290039,-0.29408740997314453],[-31.705913543701172,86.53384399414062,4.514425754547119],[-31.705913543701172,86.53384399414062,4.514425754547119],[-31.705913543701172,81.7059097290039,-0.29408740997314453],[-31.705913543701172,86.5062255859375,4.791347026824951],[-31.705913543701172,86.5062255859375,4.791347026824951],[-31.705913543701172,81.7059097290039,-0.29408740997314453],[-31.705913543701172,81.7059097290039,9.294087409973145],[-31.705913543701172,86.5062255859375,4.791347026824951],[-31.705913543701172,81.7059097290039,9.294087409973145],[-31.705913543701172,86.50069427490234,5.069587707519531],[-31.705913543701172,86.50069427490234,5.069587707519531],[-31.705913543701172,81.7059097290039,9.294087409973145],[-31.705913543701172,86.51728057861328,5.34738826751709],[-31.705913543701172,86.51728057861328,5.34738826751709],[-31.705913543701172,81.7059097290039,9.294087409973145],[-31.705913543701172,86.55589294433594,5.622992515563965],[-31.705913543701172,86.55589294433594,5.622992515563965],[-31.705913543701172,81.7059097290039,9.294087409973145],[-31.705913543701172,86.61627960205078,5.894658088684082],[-31.705913543701172,86.61627960205078,5.894658088684082],[-31.705913543701172,81.7059097290039,9.294087409973145],[-31.705913543701172,86.69805145263672,6.160667419433594],[-31.705913543701172,86.69805145263672,6.160667419433594],[-31.705913543701172,81.7059097290039,9.294087409973145],[-31.705913543701172,86.80070495605469,6.419338703155518],[-31.705913543701172,86.80070495605469,6.419338703155518],[-31.705913543701172,81.7059097290039,9.294087409973145],[-31.705913543701172,86.923583984375,6.669036388397217],[-31.705913543701172,86.923583984375,6.669036388397217],[-31.705913543701172,81.7059097290039,9.294087409973145],[-31.705913543701172,87.06591796875,6.908181667327881],[-31.705913543701172,87.06591796875,6.908181667327881],[-31.705913543701172,81.7059097290039,9.294087409973145],[-31.705913543701172,87.22679901123047,7.135262966156006],[-31.705913543701172,87.22679901123047,7.135262966156006],[-31.705913543701172,81.7059097290039,9.294087409973145],[-31.705913543701172,87.40521240234375,7.348844528198242],[-31.705913543701172,87.40521240234375,7.348844528198242],[-31.705913543701172,81.7059097290039,9.294087409973145],[-31.705913543701172,87.60002899169922,7.547575950622559],[-31.705913543701172,87.60002899169922,7.547575950622559],[-31.705913543701172,81.7059097290039,9.294087409973145],[-31.705913543701172,87.81002044677734,7.73020076751709],[-31.705913543701172,87.81002044677734,7.73020076751709],[-31.705913543701172,81.7059097290039,9.294087409973145],[-31.705913543701172,88.03385925292969,7.895564079284668],[-31.705913543701172,88.03385925292969,7.895564079284668],[-31.705913543701172,81.7059097290039,9.294087409973145],[-31.705913543701172,88.27012634277344,8.042620658874512],[-31.705913543701172,88.27012634277344,8.042620658874512],[-31.705913543701172,81.7059097290039,9.294087409973145],[-31.705913543701172,88.517333984375,8.170441627502441],[-31.705913543701172,88.517333984375,8.170441627502441],[-31.705913543701172,81.7059097290039,9.294087409973145],[-31.705913543701172,88.77391052246094,8.278217315673828],[-31.705913543701172,88.77391052246094,8.278217315673828],[-31.705913543701172,81.7059097290039,9.294087409973145],[-31.705913543701172,89.03824615478516,8.365266799926758],[-31.705913543701172,89.03824615478516,8.365266799926758],[-31.705913543701172,81.7059097290039,9.294087409973145],[-31.705913543701172,89.30865478515625,8.43104076385498],[-31.705913543701172,89.30865478515625,8.43104076385498],[-31.705913543701172,81.7059097290039,9.294087409973145],[-31.705913543701172,89.58343505859375,8.475122451782227],[-31.705913543701172,89.58343505859375,8.475122451782227],[-31.705913543701172,81.7059097290039,9.294087409973145],[-31.705913543701172,89.86085510253906,8.497232437133789],[-31.705913543701172,89.86085510253906,8.497232437133789],[-31.705913543701172,81.7059097290039,9.294087409973145],[-31.705913543701172,90.13914489746094,8.497232437133789],[-31.705913543701172,90.13914489746094,8.497232437133789],[-31.705913543701172,81.7059097290039,9.294087409973145],[-31.705913543701172,98.2940902709961,9.294087409973145],[-31.705913543701172,90.13914489746094,8.497232437133789],[-31.705913543701172,98.2940902709961,9.294087409973145],[-31.705913543701172,90.41656494140625,8.475122451782227],[-31.705913543701172,90.41656494140625,8.475122451782227],[-31.705913543701172,98.2940902709961,9.294087409973145],[-31.705913543701172,90.69134521484375,8.43104076385498],[-31.705913543701172,90.69134521484375,8.43104076385498],[-31.705913543701172,98.2940902709961,9.294087409973145],[-31.705913543701172,90.96175384521484,8.365266799926758],[-31.705913543701172,90.96175384521484,8.365266799926758],[-31.705913543701172,98.2940902709961,9.294087409973145],[-31.705913543701172,91.22608947753906,8.278217315673828],[-31.705913543701172,91.22608947753906,8.278217315673828],[-31.705913543701172,98.2940902709961,9.294087409973145],[-31.705913543701172,91.482666015625,8.170441627502441],[-31.705913543701172,91.482666015625,8.170441627502441],[-31.705913543701172,98.2940902709961,9.294087409973145],[-31.705913543701172,91.72987365722656,8.042620658874512],[-31.705913543701172,91.72987365722656,8.042620658874512],[-31.705913543701172,98.2940902709961,9.294087409973145],[-31.705913543701172,91.96614074707031,7.895564079284668],[-31.705913543701172,91.96614074707031,7.895564079284668],[-31.705913543701172,98.2940902709961,9.294087409973145],[-31.705913543701172,92.18997955322266,7.73020076751709],[-31.705913543701172,92.18997955322266,7.73020076751709],[-31.705913543701172,98.2940902709961,9.294087409973145],[-31.705913543701172,92.39997100830078,7.547575950622559],[-31.705913543701172,92.39997100830078,7.547575950622559],[-31.705913543701172,98.2940902709961,9.294087409973145],[-31.705913543701172,92.59478759765625,7.348844528198242],[-31.705913543701172,92.59478759765625,7.348844528198242],[-31.705913543701172,98.2940902709961,9.294087409973145],[-31.705913543701172,92.77320098876953,7.135262966156006],[-31.705913543701172,92.77320098876953,7.135262966156006],[-31.705913543701172,98.2940902709961,9.294087409973145],[-31.705913543701172,92.93408203125,6.908181667327881],[-31.705913543701172,92.93408203125,6.908181667327881],[-31.705913543701172,98.2940902709961,9.294087409973145],[-31.705913543701172,93.076416015625,6.669036388397217],[-31.705913543701172,93.076416015625,6.669036388397217],[-31.705913543701172,98.2940902709961,9.294087409973145],[-31.705913543701172,93.19929504394531,6.419338703155518],[-31.705913543701172,93.19929504394531,6.419338703155518],[-31.705913543701172,98.2940902709961,9.294087409973145],[-31.705913543701172,93.30194854736328,6.160667419433594],[-31.705913543701172,93.30194854736328,6.160667419433594],[-31.705913543701172,98.2940902709961,9.294087409973145],[-31.705913543701172,93.38372039794922,5.894658088684082],[-31.705913543701172,93.38372039794922,5.894658088684082],[-31.705913543701172,98.2940902709961,9.294087409973145],[-31.705913543701172,93.44410705566406,5.622992515563965],[-31.705913543701172,93.44410705566406,5.622992515563965],[-31.705913543701172,98.2940902709961,9.294087409973145],[-31.705913543701172,93.48271942138672,5.34738826751709],[-31.705913543701172,93.48271942138672,5.34738826751709],[-31.705913543701172,98.2940902709961,9.294087409973145],[-31.705913543701172,93.49930572509766,5.069587707519531],[-31.705913543701172,93.49930572509766,5.069587707519531],[-31.705913543701172,98.2940902709961,9.294087409973145],[-31.705913543701172,93.4937744140625,4.791347026824951],[-31.705913543701172,93.4937744140625,4.791347026824951],[-31.705913543701172,98.2940902709961,9.294087409973145],[-31.705913543701172,98.2940902709961,-0.29408740997314453],[-31.705913543701172,93.4937744140625,4.791347026824951],[-31.705913543701172,98.2940902709961,-0.29408740997314453],[-31.705913543701172,93.46615600585938,4.514425754547119],[-31.705913543701172,93.46615600585938,4.514425754547119],[-31.705913543701172,98.2940902709961,-0.29408740997314453],[-31.705913543701172,93.41661834716797,4.240574359893799],[-31.705913543701172,93.41661834716797,4.240574359893799],[-31.705913543701172,98.2940902709961,-0.29408740997314453],[-31.705913543701172,93.3454818725586,3.9715240001678467],[-31.705913543701172,93.3454818725586,3.9715240001678467],[-31.705913543701172,98.2940902709961,-0.29408740997314453],[-31.705913543701172,93.25318908691406,3.7089762687683105],[-31.705913543701172,93.25318908691406,3.7089762687683105],[-31.705913543701172,98.2940902709961,-0.29408740997314453],[-31.705913543701172,93.14033508300781,3.4545907974243164],[-31.705913543701172,93.14033508300781,3.4545907974243164],[-31.705913543701172,98.2940902709961,-0.29408740997314453],[-31.705913543701172,93.00762939453125,3.2099757194519043],[-31.705913543701172,93.00762939453125,3.2099757194519043],[-31.705913543701172,98.2940902709961,-0.29408740997314453],[-31.705913543701172,92.85590362548828,2.976677894592285],[-31.705913543701172,92.85590362548828,2.976677894592285],[-31.705913543701172,98.2940902709961,-0.29408740997314453],[-31.705913543701172,92.68611907958984,2.7561721801757812],[-31.705913543701172,92.68611907958984,2.7561721801757812],[-31.705913543701172,98.2940902709961,-0.29408740997314453],[-31.705913543701172,92.49935913085938,2.5498528480529785],[-31.705913543701172,92.49935913085938,2.5498528480529785],[-31.705913543701172,98.2940902709961,-0.29408740997314453],[-31.705913543701172,92.29679107666016,2.3590238094329834],[-31.705913543701172,92.29679107666016,2.3590238094329834],[-31.705913543701172,98.2940902709961,-0.29408740997314453],[-31.705913543701172,92.07970428466797,2.184891939163208],[-31.705913543701172,92.07970428466797,2.184891939163208],[-31.705913543701172,98.2940902709961,-0.29408740997314453],[-31.705913543701172,91.84947204589844,2.0285582542419434],[-31.705913543701172,91.84947204589844,2.0285582542419434],[-31.705913543701172,98.2940902709961,-0.29408740997314453],[-31.705913543701172,91.6075439453125,1.8910108804702759],[-31.705913543701172,91.6075439453125,1.8910108804702759],[-31.705913543701172,98.2940902709961,-0.29408740997314453],[-31.705913543701172,91.3554458618164,1.7731194496154785],[-31.705913543701172,91.3554458618164,1.7731194496154785],[-31.705913543701172,98.2940902709961,-0.29408740997314453],[-31.705913543701172,91.09478759765625,1.6756294965744019],[-31.705913543701172,91.09478759765625,1.6756294965744019],[-31.705913543701172,98.2940902709961,-0.29408740997314453],[-31.705913543701172,90.82720184326172,1.5991573333740234],[-31.705913543701172,90.82720184326172,1.5991573333740234],[-31.705913543701172,98.2940902709961,-0.29408740997314453],[-31.705913543701172,90.55438995361328,1.5441863536834717],[-31.705913543701172,90.55438995361328,1.5441863536834717],[-31.705913543701172,98.2940902709961,-0.29408740997314453],[-31.705913543701172,90.278076171875,1.511064052581787],[-27.5,100,11],[-62.5,100,11],[-27.5,80,11],[-27.5,80,11],[-62.5,100,11],[-62.5,80,11],[-62.5,80,11],[-62.5,80,-2],[-27.5,80,11],[-27.5,80,11],[-62.5,80,-2],[-27.5,80,-2],[-27.5,100,11],[-27.5,100,-2],[-62.5,100,11],[-62.5,100,11],[-27.5,100,-2],[-62.5,100,-2],[-27.5,89.721923828125,1.511064052581787],[-27.5,80,-2],[-27.5,90,1.5],[-27.5,90,1.5],[-27.5,80,-2],[-27.5,100,-2],[-27.5,90,1.5],[-27.5,100,-2],[-27.5,90.278076171875,1.511064052581787],[-27.5,90.278076171875,1.511064052581787],[-27.5,100,-2],[-27.5,90.55438995361328,1.5441863536834717],[-27.5,90.55438995361328,1.5441863536834717],[-27.5,100,-2],[-27.5,90.82720184326172,1.5991573333740234],[-27.5,90.82720184326172,1.5991573333740234],[-27.5,100,-2],[-27.5,91.09478759765625,1.6756294965744019],[-27.5,91.09478759765625,1.6756294965744019],[-27.5,100,-2],[-27.5,91.3554458618164,1.7731194496154785],[-27.5,91.3554458618164,1.7731194496154785],[-27.5,100,-2],[-27.5,91.6075439453125,1.8910108804702759],[-27.5,91.6075439453125,1.8910108804702759],[-27.5,100,-2],[-27.5,91.84947204589844,2.0285582542419434],[-27.5,91.84947204589844,2.0285582542419434],[-27.5,100,-2],[-27.5,92.07970428466797,2.184891939163208],[-27.5,92.07970428466797,2.184891939163208],[-27.5,100,-2],[-27.5,92.29679107666016,2.3590238094329834],[-27.5,92.29679107666016,2.3590238094329834],[-27.5,100,-2],[-27.5,92.49935913085938,2.5498528480529785],[-27.5,92.49935913085938,2.5498528480529785],[-27.5,100,-2],[-27.5,92.68611907958984,2.7561721801757812],[-27.5,92.68611907958984,2.7561721801757812],[-27.5,100,-2],[-27.5,92.85590362548828,2.976677894592285],[-27.5,92.85590362548828,2.976677894592285],[-27.5,100,-2],[-27.5,93.00762939453125,3.2099757194519043],[-27.5,93.00762939453125,3.2099757194519043],[-27.5,100,-2],[-27.5,93.14033508300781,3.4545907974243164],[-27.5,93.14033508300781,3.4545907974243164],[-27.5,100,-2],[-27.5,93.25318908691406,3.7089762687683105],[-27.5,93.25318908691406,3.7089762687683105],[-27.5,100,-2],[-27.5,93.3454818725586,3.9715240001678467],[-27.5,93.3454818725586,3.9715240001678467],[-27.5,100,-2],[-27.5,93.41661834716797,4.240574359893799],[-27.5,93.41661834716797,4.240574359893799],[-27.5,100,-2],[-27.5,93.46615600585938,4.514425754547119],[-27.5,93.46615600585938,4.514425754547119],[-27.5,100,-2],[-27.5,93.4937744140625,4.791347026824951],[-27.5,93.4937744140625,4.791347026824951],[-27.5,100,-2],[-27.5,100,11],[-27.5,93.4937744140625,4.791347026824951],[-27.5,100,11],[-27.5,93.49930572509766,5.069587707519531],[-27.5,93.49930572509766,5.069587707519531],[-27.5,100,11],[-27.5,93.48271942138672,5.34738826751709],[-27.5,93.48271942138672,5.34738826751709],[-27.5,100,11],[-27.5,93.44410705566406,5.622992515563965],[-27.5,93.44410705566406,5.622992515563965],[-27.5,100,11],[-27.5,93.38372039794922,5.894658088684082],[-27.5,93.38372039794922,5.894658088684082],[-27.5,100,11],[-27.5,93.30194854736328,6.160667419433594],[-27.5,93.30194854736328,6.160667419433594],[-27.5,100,11],[-27.5,93.19929504394531,6.419338703155518],[-27.5,93.19929504394531,6.419338703155518],[-27.5,100,11],[-27.5,93.076416015625,6.669036388397217],[-27.5,93.076416015625,6.669036388397217],[-27.5,100,11],[-27.5,92.93408203125,6.908181667327881],[-27.5,92.93408203125,6.908181667327881],[-27.5,100,11],[-27.5,92.77320098876953,7.135262966156006],[-27.5,92.77320098876953,7.135262966156006],[-27.5,100,11],[-27.5,92.59478759765625,7.348844528198242],[-27.5,92.59478759765625,7.348844528198242],[-27.5,100,11],[-27.5,92.39997100830078,7.547575950622559],[-27.5,92.39997100830078,7.547575950622559],[-27.5,100,11],[-27.5,92.18997955322266,7.73020076751709],[-27.5,92.18997955322266,7.73020076751709],[-27.5,100,11],[-27.5,91.96614074707031,7.895564079284668],[-27.5,91.96614074707031,7.895564079284668],[-27.5,100,11],[-27.5,91.72987365722656,8.042620658874512],[-27.5,91.72987365722656,8.042620658874512],[-27.5,100,11],[-27.5,91.482666015625,8.170441627502441],[-27.5,91.482666015625,8.170441627502441],[-27.5,100,11],[-27.5,91.22608947753906,8.278217315673828],[-27.5,91.22608947753906,8.278217315673828],[-27.5,100,11],[-27.5,90.96175384521484,8.365266799926758],[-27.5,90.96175384521484,8.365266799926758],[-27.5,100,11],[-27.5,90.69134521484375,8.43104076385498],[-27.5,90.69134521484375,8.43104076385498],[-27.5,100,11],[-27.5,90.41656494140625,8.475122451782227],[-27.5,90.41656494140625,8.475122451782227],[-27.5,100,11],[-27.5,90.13914489746094,8.497232437133789],[-27.5,90.13914489746094,8.497232437133789],[-27.5,100,11],[-27.5,80,11],[-27.5,90.13914489746094,8.497232437133789],[-27.5,80,11],[-27.5,89.86085510253906,8.497232437133789],[-27.5,89.86085510253906,8.497232437133789],[-27.5,80,11],[-27.5,89.58343505859375,8.475122451782227],[-27.5,89.58343505859375,8.475122451782227],[-27.5,80,11],[-27.5,89.30865478515625,8.43104076385498],[-27.5,89.30865478515625,8.43104076385498],[-27.5,80,11],[-27.5,89.03824615478516,8.365266799926758],[-27.5,89.03824615478516,8.365266799926758],[-27.5,80,11],[-27.5,88.77391052246094,8.278217315673828],[-27.5,88.77391052246094,8.278217315673828],[-27.5,80,11],[-27.5,88.517333984375,8.170441627502441],[-27.5,88.517333984375,8.170441627502441],[-27.5,80,11],[-27.5,88.27012634277344,8.042620658874512],[-27.5,88.27012634277344,8.042620658874512],[-27.5,80,11],[-27.5,88.03385925292969,7.895564079284668],[-27.5,88.03385925292969,7.895564079284668],[-27.5,80,11],[-27.5,87.81002044677734,7.73020076751709],[-27.5,87.81002044677734,7.73020076751709],[-27.5,80,11],[-27.5,87.60002899169922,7.547575950622559],[-27.5,87.60002899169922,7.547575950622559],[-27.5,80,11],[-27.5,87.40521240234375,7.348844528198242],[-27.5,87.40521240234375,7.348844528198242],[-27.5,80,11],[-27.5,87.22679901123047,7.135262966156006],[-27.5,87.22679901123047,7.135262966156006],[-27.5,80,11],[-27.5,87.06591796875,6.908181667327881],[-27.5,87.06591796875,6.908181667327881],[-27.5,80,11],[-27.5,86.923583984375,6.669036388397217],[-27.5,86.923583984375,6.669036388397217],[-27.5,80,11],[-27.5,86.80070495605469,6.419338703155518],[-27.5,86.80070495605469,6.419338703155518],[-27.5,80,11],[-27.5,86.69805145263672,6.160667419433594],[-27.5,86.69805145263672,6.160667419433594],[-27.5,80,11],[-27.5,86.61627960205078,5.894658088684082],[-27.5,86.61627960205078,5.894658088684082],[-27.5,80,11],[-27.5,86.55589294433594,5.622992515563965],[-27.5,86.55589294433594,5.622992515563965],[-27.5,80,11],[-27.5,86.51728057861328,5.34738826751709],[-27.5,86.51728057861328,5.34738826751709],[-27.5,80,11],[-27.5,86.50069427490234,5.069587707519531],[-27.5,86.50069427490234,5.069587707519531],[-27.5,80,11],[-27.5,86.5062255859375,4.791347026824951],[-27.5,86.5062255859375,4.791347026824951],[-27.5,80,11],[-27.5,80,-2],[-27.5,86.5062255859375,4.791347026824951],[-27.5,80,-2],[-27.5,86.53384399414062,4.514425754547119],[-27.5,86.53384399414062,4.514425754547119],[-27.5,80,-2],[-27.5,86.58338165283203,4.240574359893799],[-27.5,86.58338165283203,4.240574359893799],[-27.5,80,-2],[-27.5,86.6545181274414,3.9715240001678467],[-27.5,86.6545181274414,3.9715240001678467],[-27.5,80,-2],[-27.5,86.74681091308594,3.7089762687683105],[-27.5,86.74681091308594,3.7089762687683105],[-27.5,80,-2],[-27.5,86.85966491699219,3.4545907974243164],[-27.5,86.85966491699219,3.4545907974243164],[-27.5,80,-2],[-27.5,86.99237060546875,3.2099757194519043],[-27.5,86.99237060546875,3.2099757194519043],[-27.5,80,-2],[-27.5,87.14409637451172,2.976677894592285],[-27.5,87.14409637451172,2.976677894592285],[-27.5,80,-2],[-27.5,87.31388092041016,2.7561721801757812],[-27.5,87.31388092041016,2.7561721801757812],[-27.5,80,-2],[-27.5,87.50064086914062,2.5498528480529785],[-27.5,87.50064086914062,2.5498528480529785],[-27.5,80,-2],[-27.5,87.70320892333984,2.3590238094329834],[-27.5,87.70320892333984,2.3590238094329834],[-27.5,80,-2],[-27.5,87.92029571533203,2.184891939163208],[-27.5,87.92029571533203,2.184891939163208],[-27.5,80,-2],[-27.5,88.15052795410156,2.0285582542419434],[-27.5,88.15052795410156,2.0285582542419434],[-27.5,80,-2],[-27.5,88.3924560546875,1.8910108804702759],[-27.5,88.3924560546875,1.8910108804702759],[-27.5,80,-2],[-27.5,88.6445541381836,1.7731194496154785],[-27.5,88.6445541381836,1.7731194496154785],[-27.5,80,-2],[-27.5,88.90521240234375,1.6756294965744019],[-27.5,88.90521240234375,1.6756294965744019],[-27.5,80,-2],[-27.5,89.17279815673828,1.5991573333740234],[-27.5,89.17279815673828,1.5991573333740234],[-27.5,80,-2],[-27.5,89.44561004638672,1.5441863536834717],[-27.5,89.44561004638672,1.5441863536834717],[-27.5,80,-2],[-27.5,89.721923828125,1.511064052581787] ],
faces=[[0,1,2],[3,4,5],[6,7,8],[9,10,11],[12,13,14],[15,16,17],[18,19,20],[21,22,23],[24,25,26],[27,28,29],[30,31,32],[33,34,35],[36,37,38],[39,40,41],[42,43,44],[45,46,47],[48,49,50],[51,52,53],[54,55,56],[57,58,59],[60,61,62],[63,64,65],[66,67,68],[69,70,71],[72,73,74],[75,76,77],[78,79,80],[81,82,83],[84,85,86],[87,88,89],[90,91,92],[93,94,95],[96,97,98],[99,100,101],[102,103,104],[105,106,107],[108,109,110],[111,112,113],[114,115,116],[117,118,119],[120,121,122],[123,124,125],[126,127,128],[129,130,131],[132,133,134],[135,136,137],[138,139,140],[141,142,143],[144,145,146],[147,148,149],[150,151,152],[153,154,155],[156,157,158],[159,160,161],[162,163,164],[165,166,167],[168,169,170],[171,172,173],[174,175,176],[177,178,179],[180,181,182],[183,184,185],[186,187,188],[189,190,191],[192,193,194],[195,196,197],[198,199,200],[201,202,203],[204,205,206],[207,208,209],[210,211,212],[213,214,215],[216,217,218],[219,220,221],[222,223,224],[225,226,227],[228,229,230],[231,232,233],[234,235,236],[237,238,239],[240,241,242],[243,244,245],[246,247,248],[249,250,251],[252,253,254],[255,256,257],[258,259,260],[261,262,263],[264,265,266],[267,268,269],[270,271,272],[273,274,275],[276,277,278],[279,280,281],[282,283,284],[285,286,287],[288,289,290],[291,292,293],[294,295,296],[297,298,299],[300,301,302],[303,304,305],[306,307,308],[309,310,311],[312,313,314],[315,316,317],[318,319,320],[321,322,323],[324,325,326],[327,328,329],[330,331,332],[333,334,335],[336,337,338],[339,340,341],[342,343,344],[345,346,347],[348,349,350],[351,352,353],[354,355,356],[357,358,359],[360,361,362],[363,364,365],[366,367,368],[369,370,371],[372,373,374],[375,376,377],[378,379,380],[381,382,383],[384,385,386],[387,388,389],[390,391,392],[393,394,395],[396,397,398],[399,400,401],[402,403,404],[405,406,407],[408,409,410],[411,412,413],[414,415,416],[417,418,419],[420,421,422],[423,424,425],[426,427,428],[429,430,431],[432,433,434],[435,436,437],[438,439,440],[441,442,443],[444,445,446],[447,448,449],[450,451,452],[453,454,455],[456,457,458],[459,460,461],[462,463,464],[465,466,467],[468,469,470],[471,472,473],[474,475,476],[477,478,479],[480,481,482],[483,484,485],[486,487,488],[489,490,491],[492,493,494],[495,496,497],[498,499,500],[501,502,503],[504,505,506],[507,508,509],[510,511,512],[513,514,515],[516,517,518],[519,520,521],[522,523,524],[525,526,527],[528,529,530],[531,532,533],[534,535,536],[537,538,539],[540,541,542],[543,544,545],[546,547,548],[549,550,551],[552,553,554],[555,556,557],[558,559,560],[561,562,563],[564,565,566],[567,568,569],[570,571,572],[573,574,575],[576,577,578],[579,580,581],[582,583,584],[585,586,587],[588,589,590],[591,592,593],[594,595,596],[597,598,599],[600,601,602],[603,604,605],[606,607,608],[609,610,611],[612,613,614],[615,616,617],[618,619,620],[621,622,623],[624,625,626],[627,628,629],[630,631,632],[633,634,635],[636,637,638],[639,640,641],[642,643,644],[645,646,647],[648,649,650],[651,652,653],[654,655,656],[657,658,659],[660,661,662],[663,664,665],[666,667,668],[669,670,671],[672,673,674],[675,676,677],[678,679,680],[681,682,683],[684,685,686],[687,688,689],[690,691,692],[693,694,695],[696,697,698],[699,700,701],[702,703,704],[705,706,707],[708,709,710],[711,712,713],[714,715,716],[717,718,719],[720,721,722],[723,724,725],[726,727,728],[729,730,731],[732,733,734],[735,736,737],[738,739,740],[741,742,743],[744,745,746],[747,748,749],[750,751,752],[753,754,755],[756,757,758],[759,760,761],[762,763,764],[765,766,767],[768,769,770],[771,772,773],[774,775,776],[777,778,779],[780,781,782],[783,784,785],[786,787,788],[789,790,791],[792,793,794],[795,796,797],[798,799,800],[801,802,803],[804,805,806],[807,808,809],[810,811,812],[813,814,815],[816,817,818],[819,820,821],[822,823,824],[825,826,827],[828,829,830],[831,832,833],[834,835,836],[837,838,839],[840,841,842],[843,844,845],[846,847,848],[849,850,851],[852,853,854],[855,856,857],[858,859,860],[861,862,863],[864,865,866],[867,868,869],[870,871,872],[873,874,875],[876,877,878],[879,880,881],[882,883,884],[885,886,887],[888,889,890],[891,892,893],[894,895,896],[897,898,899],[900,901,902],[903,904,905],[906,907,908],[909,910,911],[912,913,914],[915,916,917],[918,919,920],[921,922,923],[924,925,926],[927,928,929],[930,931,932],[933,934,935],[936,937,938],[939,940,941],[942,943,944],[945,946,947],[948,949,950],[951,952,953],[954,955,956],[957,958,959],[960,961,962],[963,964,965],[966,967,968],[969,970,971],[972,973,974],[975,976,977],[978,979,980],[981,982,983],[984,985,986],[987,988,989],[990,991,992],[993,994,995],[996,997,998],[999,1000,1001],[1002,1003,1004],[1005,1006,1007],[1008,1009,1010],[1011,1012,1013],[1014,1015,1016],[1017,1018,1019],[1020,1021,1022],[1023,1024,1025],[1026,1027,1028],[1029,1030,1031],[1032,1033,1034],[1035,1036,1037],[1038,1039,1040],[1041,1042,1043],[1044,1045,1046],[1047,1048,1049],[1050,1051,1052],[1053,1054,1055],[1056,1057,1058],[1059,1060,1061],[1062,1063,1064],[1065,1066,1067],[1068,1069,1070],[1071,1072,1073],[1074,1075,1076],[1077,1078,1079],[1080,1081,1082],[1083,1084,1085],[1086,1087,1088],[1089,1090,1091]]);}

object1(1);
